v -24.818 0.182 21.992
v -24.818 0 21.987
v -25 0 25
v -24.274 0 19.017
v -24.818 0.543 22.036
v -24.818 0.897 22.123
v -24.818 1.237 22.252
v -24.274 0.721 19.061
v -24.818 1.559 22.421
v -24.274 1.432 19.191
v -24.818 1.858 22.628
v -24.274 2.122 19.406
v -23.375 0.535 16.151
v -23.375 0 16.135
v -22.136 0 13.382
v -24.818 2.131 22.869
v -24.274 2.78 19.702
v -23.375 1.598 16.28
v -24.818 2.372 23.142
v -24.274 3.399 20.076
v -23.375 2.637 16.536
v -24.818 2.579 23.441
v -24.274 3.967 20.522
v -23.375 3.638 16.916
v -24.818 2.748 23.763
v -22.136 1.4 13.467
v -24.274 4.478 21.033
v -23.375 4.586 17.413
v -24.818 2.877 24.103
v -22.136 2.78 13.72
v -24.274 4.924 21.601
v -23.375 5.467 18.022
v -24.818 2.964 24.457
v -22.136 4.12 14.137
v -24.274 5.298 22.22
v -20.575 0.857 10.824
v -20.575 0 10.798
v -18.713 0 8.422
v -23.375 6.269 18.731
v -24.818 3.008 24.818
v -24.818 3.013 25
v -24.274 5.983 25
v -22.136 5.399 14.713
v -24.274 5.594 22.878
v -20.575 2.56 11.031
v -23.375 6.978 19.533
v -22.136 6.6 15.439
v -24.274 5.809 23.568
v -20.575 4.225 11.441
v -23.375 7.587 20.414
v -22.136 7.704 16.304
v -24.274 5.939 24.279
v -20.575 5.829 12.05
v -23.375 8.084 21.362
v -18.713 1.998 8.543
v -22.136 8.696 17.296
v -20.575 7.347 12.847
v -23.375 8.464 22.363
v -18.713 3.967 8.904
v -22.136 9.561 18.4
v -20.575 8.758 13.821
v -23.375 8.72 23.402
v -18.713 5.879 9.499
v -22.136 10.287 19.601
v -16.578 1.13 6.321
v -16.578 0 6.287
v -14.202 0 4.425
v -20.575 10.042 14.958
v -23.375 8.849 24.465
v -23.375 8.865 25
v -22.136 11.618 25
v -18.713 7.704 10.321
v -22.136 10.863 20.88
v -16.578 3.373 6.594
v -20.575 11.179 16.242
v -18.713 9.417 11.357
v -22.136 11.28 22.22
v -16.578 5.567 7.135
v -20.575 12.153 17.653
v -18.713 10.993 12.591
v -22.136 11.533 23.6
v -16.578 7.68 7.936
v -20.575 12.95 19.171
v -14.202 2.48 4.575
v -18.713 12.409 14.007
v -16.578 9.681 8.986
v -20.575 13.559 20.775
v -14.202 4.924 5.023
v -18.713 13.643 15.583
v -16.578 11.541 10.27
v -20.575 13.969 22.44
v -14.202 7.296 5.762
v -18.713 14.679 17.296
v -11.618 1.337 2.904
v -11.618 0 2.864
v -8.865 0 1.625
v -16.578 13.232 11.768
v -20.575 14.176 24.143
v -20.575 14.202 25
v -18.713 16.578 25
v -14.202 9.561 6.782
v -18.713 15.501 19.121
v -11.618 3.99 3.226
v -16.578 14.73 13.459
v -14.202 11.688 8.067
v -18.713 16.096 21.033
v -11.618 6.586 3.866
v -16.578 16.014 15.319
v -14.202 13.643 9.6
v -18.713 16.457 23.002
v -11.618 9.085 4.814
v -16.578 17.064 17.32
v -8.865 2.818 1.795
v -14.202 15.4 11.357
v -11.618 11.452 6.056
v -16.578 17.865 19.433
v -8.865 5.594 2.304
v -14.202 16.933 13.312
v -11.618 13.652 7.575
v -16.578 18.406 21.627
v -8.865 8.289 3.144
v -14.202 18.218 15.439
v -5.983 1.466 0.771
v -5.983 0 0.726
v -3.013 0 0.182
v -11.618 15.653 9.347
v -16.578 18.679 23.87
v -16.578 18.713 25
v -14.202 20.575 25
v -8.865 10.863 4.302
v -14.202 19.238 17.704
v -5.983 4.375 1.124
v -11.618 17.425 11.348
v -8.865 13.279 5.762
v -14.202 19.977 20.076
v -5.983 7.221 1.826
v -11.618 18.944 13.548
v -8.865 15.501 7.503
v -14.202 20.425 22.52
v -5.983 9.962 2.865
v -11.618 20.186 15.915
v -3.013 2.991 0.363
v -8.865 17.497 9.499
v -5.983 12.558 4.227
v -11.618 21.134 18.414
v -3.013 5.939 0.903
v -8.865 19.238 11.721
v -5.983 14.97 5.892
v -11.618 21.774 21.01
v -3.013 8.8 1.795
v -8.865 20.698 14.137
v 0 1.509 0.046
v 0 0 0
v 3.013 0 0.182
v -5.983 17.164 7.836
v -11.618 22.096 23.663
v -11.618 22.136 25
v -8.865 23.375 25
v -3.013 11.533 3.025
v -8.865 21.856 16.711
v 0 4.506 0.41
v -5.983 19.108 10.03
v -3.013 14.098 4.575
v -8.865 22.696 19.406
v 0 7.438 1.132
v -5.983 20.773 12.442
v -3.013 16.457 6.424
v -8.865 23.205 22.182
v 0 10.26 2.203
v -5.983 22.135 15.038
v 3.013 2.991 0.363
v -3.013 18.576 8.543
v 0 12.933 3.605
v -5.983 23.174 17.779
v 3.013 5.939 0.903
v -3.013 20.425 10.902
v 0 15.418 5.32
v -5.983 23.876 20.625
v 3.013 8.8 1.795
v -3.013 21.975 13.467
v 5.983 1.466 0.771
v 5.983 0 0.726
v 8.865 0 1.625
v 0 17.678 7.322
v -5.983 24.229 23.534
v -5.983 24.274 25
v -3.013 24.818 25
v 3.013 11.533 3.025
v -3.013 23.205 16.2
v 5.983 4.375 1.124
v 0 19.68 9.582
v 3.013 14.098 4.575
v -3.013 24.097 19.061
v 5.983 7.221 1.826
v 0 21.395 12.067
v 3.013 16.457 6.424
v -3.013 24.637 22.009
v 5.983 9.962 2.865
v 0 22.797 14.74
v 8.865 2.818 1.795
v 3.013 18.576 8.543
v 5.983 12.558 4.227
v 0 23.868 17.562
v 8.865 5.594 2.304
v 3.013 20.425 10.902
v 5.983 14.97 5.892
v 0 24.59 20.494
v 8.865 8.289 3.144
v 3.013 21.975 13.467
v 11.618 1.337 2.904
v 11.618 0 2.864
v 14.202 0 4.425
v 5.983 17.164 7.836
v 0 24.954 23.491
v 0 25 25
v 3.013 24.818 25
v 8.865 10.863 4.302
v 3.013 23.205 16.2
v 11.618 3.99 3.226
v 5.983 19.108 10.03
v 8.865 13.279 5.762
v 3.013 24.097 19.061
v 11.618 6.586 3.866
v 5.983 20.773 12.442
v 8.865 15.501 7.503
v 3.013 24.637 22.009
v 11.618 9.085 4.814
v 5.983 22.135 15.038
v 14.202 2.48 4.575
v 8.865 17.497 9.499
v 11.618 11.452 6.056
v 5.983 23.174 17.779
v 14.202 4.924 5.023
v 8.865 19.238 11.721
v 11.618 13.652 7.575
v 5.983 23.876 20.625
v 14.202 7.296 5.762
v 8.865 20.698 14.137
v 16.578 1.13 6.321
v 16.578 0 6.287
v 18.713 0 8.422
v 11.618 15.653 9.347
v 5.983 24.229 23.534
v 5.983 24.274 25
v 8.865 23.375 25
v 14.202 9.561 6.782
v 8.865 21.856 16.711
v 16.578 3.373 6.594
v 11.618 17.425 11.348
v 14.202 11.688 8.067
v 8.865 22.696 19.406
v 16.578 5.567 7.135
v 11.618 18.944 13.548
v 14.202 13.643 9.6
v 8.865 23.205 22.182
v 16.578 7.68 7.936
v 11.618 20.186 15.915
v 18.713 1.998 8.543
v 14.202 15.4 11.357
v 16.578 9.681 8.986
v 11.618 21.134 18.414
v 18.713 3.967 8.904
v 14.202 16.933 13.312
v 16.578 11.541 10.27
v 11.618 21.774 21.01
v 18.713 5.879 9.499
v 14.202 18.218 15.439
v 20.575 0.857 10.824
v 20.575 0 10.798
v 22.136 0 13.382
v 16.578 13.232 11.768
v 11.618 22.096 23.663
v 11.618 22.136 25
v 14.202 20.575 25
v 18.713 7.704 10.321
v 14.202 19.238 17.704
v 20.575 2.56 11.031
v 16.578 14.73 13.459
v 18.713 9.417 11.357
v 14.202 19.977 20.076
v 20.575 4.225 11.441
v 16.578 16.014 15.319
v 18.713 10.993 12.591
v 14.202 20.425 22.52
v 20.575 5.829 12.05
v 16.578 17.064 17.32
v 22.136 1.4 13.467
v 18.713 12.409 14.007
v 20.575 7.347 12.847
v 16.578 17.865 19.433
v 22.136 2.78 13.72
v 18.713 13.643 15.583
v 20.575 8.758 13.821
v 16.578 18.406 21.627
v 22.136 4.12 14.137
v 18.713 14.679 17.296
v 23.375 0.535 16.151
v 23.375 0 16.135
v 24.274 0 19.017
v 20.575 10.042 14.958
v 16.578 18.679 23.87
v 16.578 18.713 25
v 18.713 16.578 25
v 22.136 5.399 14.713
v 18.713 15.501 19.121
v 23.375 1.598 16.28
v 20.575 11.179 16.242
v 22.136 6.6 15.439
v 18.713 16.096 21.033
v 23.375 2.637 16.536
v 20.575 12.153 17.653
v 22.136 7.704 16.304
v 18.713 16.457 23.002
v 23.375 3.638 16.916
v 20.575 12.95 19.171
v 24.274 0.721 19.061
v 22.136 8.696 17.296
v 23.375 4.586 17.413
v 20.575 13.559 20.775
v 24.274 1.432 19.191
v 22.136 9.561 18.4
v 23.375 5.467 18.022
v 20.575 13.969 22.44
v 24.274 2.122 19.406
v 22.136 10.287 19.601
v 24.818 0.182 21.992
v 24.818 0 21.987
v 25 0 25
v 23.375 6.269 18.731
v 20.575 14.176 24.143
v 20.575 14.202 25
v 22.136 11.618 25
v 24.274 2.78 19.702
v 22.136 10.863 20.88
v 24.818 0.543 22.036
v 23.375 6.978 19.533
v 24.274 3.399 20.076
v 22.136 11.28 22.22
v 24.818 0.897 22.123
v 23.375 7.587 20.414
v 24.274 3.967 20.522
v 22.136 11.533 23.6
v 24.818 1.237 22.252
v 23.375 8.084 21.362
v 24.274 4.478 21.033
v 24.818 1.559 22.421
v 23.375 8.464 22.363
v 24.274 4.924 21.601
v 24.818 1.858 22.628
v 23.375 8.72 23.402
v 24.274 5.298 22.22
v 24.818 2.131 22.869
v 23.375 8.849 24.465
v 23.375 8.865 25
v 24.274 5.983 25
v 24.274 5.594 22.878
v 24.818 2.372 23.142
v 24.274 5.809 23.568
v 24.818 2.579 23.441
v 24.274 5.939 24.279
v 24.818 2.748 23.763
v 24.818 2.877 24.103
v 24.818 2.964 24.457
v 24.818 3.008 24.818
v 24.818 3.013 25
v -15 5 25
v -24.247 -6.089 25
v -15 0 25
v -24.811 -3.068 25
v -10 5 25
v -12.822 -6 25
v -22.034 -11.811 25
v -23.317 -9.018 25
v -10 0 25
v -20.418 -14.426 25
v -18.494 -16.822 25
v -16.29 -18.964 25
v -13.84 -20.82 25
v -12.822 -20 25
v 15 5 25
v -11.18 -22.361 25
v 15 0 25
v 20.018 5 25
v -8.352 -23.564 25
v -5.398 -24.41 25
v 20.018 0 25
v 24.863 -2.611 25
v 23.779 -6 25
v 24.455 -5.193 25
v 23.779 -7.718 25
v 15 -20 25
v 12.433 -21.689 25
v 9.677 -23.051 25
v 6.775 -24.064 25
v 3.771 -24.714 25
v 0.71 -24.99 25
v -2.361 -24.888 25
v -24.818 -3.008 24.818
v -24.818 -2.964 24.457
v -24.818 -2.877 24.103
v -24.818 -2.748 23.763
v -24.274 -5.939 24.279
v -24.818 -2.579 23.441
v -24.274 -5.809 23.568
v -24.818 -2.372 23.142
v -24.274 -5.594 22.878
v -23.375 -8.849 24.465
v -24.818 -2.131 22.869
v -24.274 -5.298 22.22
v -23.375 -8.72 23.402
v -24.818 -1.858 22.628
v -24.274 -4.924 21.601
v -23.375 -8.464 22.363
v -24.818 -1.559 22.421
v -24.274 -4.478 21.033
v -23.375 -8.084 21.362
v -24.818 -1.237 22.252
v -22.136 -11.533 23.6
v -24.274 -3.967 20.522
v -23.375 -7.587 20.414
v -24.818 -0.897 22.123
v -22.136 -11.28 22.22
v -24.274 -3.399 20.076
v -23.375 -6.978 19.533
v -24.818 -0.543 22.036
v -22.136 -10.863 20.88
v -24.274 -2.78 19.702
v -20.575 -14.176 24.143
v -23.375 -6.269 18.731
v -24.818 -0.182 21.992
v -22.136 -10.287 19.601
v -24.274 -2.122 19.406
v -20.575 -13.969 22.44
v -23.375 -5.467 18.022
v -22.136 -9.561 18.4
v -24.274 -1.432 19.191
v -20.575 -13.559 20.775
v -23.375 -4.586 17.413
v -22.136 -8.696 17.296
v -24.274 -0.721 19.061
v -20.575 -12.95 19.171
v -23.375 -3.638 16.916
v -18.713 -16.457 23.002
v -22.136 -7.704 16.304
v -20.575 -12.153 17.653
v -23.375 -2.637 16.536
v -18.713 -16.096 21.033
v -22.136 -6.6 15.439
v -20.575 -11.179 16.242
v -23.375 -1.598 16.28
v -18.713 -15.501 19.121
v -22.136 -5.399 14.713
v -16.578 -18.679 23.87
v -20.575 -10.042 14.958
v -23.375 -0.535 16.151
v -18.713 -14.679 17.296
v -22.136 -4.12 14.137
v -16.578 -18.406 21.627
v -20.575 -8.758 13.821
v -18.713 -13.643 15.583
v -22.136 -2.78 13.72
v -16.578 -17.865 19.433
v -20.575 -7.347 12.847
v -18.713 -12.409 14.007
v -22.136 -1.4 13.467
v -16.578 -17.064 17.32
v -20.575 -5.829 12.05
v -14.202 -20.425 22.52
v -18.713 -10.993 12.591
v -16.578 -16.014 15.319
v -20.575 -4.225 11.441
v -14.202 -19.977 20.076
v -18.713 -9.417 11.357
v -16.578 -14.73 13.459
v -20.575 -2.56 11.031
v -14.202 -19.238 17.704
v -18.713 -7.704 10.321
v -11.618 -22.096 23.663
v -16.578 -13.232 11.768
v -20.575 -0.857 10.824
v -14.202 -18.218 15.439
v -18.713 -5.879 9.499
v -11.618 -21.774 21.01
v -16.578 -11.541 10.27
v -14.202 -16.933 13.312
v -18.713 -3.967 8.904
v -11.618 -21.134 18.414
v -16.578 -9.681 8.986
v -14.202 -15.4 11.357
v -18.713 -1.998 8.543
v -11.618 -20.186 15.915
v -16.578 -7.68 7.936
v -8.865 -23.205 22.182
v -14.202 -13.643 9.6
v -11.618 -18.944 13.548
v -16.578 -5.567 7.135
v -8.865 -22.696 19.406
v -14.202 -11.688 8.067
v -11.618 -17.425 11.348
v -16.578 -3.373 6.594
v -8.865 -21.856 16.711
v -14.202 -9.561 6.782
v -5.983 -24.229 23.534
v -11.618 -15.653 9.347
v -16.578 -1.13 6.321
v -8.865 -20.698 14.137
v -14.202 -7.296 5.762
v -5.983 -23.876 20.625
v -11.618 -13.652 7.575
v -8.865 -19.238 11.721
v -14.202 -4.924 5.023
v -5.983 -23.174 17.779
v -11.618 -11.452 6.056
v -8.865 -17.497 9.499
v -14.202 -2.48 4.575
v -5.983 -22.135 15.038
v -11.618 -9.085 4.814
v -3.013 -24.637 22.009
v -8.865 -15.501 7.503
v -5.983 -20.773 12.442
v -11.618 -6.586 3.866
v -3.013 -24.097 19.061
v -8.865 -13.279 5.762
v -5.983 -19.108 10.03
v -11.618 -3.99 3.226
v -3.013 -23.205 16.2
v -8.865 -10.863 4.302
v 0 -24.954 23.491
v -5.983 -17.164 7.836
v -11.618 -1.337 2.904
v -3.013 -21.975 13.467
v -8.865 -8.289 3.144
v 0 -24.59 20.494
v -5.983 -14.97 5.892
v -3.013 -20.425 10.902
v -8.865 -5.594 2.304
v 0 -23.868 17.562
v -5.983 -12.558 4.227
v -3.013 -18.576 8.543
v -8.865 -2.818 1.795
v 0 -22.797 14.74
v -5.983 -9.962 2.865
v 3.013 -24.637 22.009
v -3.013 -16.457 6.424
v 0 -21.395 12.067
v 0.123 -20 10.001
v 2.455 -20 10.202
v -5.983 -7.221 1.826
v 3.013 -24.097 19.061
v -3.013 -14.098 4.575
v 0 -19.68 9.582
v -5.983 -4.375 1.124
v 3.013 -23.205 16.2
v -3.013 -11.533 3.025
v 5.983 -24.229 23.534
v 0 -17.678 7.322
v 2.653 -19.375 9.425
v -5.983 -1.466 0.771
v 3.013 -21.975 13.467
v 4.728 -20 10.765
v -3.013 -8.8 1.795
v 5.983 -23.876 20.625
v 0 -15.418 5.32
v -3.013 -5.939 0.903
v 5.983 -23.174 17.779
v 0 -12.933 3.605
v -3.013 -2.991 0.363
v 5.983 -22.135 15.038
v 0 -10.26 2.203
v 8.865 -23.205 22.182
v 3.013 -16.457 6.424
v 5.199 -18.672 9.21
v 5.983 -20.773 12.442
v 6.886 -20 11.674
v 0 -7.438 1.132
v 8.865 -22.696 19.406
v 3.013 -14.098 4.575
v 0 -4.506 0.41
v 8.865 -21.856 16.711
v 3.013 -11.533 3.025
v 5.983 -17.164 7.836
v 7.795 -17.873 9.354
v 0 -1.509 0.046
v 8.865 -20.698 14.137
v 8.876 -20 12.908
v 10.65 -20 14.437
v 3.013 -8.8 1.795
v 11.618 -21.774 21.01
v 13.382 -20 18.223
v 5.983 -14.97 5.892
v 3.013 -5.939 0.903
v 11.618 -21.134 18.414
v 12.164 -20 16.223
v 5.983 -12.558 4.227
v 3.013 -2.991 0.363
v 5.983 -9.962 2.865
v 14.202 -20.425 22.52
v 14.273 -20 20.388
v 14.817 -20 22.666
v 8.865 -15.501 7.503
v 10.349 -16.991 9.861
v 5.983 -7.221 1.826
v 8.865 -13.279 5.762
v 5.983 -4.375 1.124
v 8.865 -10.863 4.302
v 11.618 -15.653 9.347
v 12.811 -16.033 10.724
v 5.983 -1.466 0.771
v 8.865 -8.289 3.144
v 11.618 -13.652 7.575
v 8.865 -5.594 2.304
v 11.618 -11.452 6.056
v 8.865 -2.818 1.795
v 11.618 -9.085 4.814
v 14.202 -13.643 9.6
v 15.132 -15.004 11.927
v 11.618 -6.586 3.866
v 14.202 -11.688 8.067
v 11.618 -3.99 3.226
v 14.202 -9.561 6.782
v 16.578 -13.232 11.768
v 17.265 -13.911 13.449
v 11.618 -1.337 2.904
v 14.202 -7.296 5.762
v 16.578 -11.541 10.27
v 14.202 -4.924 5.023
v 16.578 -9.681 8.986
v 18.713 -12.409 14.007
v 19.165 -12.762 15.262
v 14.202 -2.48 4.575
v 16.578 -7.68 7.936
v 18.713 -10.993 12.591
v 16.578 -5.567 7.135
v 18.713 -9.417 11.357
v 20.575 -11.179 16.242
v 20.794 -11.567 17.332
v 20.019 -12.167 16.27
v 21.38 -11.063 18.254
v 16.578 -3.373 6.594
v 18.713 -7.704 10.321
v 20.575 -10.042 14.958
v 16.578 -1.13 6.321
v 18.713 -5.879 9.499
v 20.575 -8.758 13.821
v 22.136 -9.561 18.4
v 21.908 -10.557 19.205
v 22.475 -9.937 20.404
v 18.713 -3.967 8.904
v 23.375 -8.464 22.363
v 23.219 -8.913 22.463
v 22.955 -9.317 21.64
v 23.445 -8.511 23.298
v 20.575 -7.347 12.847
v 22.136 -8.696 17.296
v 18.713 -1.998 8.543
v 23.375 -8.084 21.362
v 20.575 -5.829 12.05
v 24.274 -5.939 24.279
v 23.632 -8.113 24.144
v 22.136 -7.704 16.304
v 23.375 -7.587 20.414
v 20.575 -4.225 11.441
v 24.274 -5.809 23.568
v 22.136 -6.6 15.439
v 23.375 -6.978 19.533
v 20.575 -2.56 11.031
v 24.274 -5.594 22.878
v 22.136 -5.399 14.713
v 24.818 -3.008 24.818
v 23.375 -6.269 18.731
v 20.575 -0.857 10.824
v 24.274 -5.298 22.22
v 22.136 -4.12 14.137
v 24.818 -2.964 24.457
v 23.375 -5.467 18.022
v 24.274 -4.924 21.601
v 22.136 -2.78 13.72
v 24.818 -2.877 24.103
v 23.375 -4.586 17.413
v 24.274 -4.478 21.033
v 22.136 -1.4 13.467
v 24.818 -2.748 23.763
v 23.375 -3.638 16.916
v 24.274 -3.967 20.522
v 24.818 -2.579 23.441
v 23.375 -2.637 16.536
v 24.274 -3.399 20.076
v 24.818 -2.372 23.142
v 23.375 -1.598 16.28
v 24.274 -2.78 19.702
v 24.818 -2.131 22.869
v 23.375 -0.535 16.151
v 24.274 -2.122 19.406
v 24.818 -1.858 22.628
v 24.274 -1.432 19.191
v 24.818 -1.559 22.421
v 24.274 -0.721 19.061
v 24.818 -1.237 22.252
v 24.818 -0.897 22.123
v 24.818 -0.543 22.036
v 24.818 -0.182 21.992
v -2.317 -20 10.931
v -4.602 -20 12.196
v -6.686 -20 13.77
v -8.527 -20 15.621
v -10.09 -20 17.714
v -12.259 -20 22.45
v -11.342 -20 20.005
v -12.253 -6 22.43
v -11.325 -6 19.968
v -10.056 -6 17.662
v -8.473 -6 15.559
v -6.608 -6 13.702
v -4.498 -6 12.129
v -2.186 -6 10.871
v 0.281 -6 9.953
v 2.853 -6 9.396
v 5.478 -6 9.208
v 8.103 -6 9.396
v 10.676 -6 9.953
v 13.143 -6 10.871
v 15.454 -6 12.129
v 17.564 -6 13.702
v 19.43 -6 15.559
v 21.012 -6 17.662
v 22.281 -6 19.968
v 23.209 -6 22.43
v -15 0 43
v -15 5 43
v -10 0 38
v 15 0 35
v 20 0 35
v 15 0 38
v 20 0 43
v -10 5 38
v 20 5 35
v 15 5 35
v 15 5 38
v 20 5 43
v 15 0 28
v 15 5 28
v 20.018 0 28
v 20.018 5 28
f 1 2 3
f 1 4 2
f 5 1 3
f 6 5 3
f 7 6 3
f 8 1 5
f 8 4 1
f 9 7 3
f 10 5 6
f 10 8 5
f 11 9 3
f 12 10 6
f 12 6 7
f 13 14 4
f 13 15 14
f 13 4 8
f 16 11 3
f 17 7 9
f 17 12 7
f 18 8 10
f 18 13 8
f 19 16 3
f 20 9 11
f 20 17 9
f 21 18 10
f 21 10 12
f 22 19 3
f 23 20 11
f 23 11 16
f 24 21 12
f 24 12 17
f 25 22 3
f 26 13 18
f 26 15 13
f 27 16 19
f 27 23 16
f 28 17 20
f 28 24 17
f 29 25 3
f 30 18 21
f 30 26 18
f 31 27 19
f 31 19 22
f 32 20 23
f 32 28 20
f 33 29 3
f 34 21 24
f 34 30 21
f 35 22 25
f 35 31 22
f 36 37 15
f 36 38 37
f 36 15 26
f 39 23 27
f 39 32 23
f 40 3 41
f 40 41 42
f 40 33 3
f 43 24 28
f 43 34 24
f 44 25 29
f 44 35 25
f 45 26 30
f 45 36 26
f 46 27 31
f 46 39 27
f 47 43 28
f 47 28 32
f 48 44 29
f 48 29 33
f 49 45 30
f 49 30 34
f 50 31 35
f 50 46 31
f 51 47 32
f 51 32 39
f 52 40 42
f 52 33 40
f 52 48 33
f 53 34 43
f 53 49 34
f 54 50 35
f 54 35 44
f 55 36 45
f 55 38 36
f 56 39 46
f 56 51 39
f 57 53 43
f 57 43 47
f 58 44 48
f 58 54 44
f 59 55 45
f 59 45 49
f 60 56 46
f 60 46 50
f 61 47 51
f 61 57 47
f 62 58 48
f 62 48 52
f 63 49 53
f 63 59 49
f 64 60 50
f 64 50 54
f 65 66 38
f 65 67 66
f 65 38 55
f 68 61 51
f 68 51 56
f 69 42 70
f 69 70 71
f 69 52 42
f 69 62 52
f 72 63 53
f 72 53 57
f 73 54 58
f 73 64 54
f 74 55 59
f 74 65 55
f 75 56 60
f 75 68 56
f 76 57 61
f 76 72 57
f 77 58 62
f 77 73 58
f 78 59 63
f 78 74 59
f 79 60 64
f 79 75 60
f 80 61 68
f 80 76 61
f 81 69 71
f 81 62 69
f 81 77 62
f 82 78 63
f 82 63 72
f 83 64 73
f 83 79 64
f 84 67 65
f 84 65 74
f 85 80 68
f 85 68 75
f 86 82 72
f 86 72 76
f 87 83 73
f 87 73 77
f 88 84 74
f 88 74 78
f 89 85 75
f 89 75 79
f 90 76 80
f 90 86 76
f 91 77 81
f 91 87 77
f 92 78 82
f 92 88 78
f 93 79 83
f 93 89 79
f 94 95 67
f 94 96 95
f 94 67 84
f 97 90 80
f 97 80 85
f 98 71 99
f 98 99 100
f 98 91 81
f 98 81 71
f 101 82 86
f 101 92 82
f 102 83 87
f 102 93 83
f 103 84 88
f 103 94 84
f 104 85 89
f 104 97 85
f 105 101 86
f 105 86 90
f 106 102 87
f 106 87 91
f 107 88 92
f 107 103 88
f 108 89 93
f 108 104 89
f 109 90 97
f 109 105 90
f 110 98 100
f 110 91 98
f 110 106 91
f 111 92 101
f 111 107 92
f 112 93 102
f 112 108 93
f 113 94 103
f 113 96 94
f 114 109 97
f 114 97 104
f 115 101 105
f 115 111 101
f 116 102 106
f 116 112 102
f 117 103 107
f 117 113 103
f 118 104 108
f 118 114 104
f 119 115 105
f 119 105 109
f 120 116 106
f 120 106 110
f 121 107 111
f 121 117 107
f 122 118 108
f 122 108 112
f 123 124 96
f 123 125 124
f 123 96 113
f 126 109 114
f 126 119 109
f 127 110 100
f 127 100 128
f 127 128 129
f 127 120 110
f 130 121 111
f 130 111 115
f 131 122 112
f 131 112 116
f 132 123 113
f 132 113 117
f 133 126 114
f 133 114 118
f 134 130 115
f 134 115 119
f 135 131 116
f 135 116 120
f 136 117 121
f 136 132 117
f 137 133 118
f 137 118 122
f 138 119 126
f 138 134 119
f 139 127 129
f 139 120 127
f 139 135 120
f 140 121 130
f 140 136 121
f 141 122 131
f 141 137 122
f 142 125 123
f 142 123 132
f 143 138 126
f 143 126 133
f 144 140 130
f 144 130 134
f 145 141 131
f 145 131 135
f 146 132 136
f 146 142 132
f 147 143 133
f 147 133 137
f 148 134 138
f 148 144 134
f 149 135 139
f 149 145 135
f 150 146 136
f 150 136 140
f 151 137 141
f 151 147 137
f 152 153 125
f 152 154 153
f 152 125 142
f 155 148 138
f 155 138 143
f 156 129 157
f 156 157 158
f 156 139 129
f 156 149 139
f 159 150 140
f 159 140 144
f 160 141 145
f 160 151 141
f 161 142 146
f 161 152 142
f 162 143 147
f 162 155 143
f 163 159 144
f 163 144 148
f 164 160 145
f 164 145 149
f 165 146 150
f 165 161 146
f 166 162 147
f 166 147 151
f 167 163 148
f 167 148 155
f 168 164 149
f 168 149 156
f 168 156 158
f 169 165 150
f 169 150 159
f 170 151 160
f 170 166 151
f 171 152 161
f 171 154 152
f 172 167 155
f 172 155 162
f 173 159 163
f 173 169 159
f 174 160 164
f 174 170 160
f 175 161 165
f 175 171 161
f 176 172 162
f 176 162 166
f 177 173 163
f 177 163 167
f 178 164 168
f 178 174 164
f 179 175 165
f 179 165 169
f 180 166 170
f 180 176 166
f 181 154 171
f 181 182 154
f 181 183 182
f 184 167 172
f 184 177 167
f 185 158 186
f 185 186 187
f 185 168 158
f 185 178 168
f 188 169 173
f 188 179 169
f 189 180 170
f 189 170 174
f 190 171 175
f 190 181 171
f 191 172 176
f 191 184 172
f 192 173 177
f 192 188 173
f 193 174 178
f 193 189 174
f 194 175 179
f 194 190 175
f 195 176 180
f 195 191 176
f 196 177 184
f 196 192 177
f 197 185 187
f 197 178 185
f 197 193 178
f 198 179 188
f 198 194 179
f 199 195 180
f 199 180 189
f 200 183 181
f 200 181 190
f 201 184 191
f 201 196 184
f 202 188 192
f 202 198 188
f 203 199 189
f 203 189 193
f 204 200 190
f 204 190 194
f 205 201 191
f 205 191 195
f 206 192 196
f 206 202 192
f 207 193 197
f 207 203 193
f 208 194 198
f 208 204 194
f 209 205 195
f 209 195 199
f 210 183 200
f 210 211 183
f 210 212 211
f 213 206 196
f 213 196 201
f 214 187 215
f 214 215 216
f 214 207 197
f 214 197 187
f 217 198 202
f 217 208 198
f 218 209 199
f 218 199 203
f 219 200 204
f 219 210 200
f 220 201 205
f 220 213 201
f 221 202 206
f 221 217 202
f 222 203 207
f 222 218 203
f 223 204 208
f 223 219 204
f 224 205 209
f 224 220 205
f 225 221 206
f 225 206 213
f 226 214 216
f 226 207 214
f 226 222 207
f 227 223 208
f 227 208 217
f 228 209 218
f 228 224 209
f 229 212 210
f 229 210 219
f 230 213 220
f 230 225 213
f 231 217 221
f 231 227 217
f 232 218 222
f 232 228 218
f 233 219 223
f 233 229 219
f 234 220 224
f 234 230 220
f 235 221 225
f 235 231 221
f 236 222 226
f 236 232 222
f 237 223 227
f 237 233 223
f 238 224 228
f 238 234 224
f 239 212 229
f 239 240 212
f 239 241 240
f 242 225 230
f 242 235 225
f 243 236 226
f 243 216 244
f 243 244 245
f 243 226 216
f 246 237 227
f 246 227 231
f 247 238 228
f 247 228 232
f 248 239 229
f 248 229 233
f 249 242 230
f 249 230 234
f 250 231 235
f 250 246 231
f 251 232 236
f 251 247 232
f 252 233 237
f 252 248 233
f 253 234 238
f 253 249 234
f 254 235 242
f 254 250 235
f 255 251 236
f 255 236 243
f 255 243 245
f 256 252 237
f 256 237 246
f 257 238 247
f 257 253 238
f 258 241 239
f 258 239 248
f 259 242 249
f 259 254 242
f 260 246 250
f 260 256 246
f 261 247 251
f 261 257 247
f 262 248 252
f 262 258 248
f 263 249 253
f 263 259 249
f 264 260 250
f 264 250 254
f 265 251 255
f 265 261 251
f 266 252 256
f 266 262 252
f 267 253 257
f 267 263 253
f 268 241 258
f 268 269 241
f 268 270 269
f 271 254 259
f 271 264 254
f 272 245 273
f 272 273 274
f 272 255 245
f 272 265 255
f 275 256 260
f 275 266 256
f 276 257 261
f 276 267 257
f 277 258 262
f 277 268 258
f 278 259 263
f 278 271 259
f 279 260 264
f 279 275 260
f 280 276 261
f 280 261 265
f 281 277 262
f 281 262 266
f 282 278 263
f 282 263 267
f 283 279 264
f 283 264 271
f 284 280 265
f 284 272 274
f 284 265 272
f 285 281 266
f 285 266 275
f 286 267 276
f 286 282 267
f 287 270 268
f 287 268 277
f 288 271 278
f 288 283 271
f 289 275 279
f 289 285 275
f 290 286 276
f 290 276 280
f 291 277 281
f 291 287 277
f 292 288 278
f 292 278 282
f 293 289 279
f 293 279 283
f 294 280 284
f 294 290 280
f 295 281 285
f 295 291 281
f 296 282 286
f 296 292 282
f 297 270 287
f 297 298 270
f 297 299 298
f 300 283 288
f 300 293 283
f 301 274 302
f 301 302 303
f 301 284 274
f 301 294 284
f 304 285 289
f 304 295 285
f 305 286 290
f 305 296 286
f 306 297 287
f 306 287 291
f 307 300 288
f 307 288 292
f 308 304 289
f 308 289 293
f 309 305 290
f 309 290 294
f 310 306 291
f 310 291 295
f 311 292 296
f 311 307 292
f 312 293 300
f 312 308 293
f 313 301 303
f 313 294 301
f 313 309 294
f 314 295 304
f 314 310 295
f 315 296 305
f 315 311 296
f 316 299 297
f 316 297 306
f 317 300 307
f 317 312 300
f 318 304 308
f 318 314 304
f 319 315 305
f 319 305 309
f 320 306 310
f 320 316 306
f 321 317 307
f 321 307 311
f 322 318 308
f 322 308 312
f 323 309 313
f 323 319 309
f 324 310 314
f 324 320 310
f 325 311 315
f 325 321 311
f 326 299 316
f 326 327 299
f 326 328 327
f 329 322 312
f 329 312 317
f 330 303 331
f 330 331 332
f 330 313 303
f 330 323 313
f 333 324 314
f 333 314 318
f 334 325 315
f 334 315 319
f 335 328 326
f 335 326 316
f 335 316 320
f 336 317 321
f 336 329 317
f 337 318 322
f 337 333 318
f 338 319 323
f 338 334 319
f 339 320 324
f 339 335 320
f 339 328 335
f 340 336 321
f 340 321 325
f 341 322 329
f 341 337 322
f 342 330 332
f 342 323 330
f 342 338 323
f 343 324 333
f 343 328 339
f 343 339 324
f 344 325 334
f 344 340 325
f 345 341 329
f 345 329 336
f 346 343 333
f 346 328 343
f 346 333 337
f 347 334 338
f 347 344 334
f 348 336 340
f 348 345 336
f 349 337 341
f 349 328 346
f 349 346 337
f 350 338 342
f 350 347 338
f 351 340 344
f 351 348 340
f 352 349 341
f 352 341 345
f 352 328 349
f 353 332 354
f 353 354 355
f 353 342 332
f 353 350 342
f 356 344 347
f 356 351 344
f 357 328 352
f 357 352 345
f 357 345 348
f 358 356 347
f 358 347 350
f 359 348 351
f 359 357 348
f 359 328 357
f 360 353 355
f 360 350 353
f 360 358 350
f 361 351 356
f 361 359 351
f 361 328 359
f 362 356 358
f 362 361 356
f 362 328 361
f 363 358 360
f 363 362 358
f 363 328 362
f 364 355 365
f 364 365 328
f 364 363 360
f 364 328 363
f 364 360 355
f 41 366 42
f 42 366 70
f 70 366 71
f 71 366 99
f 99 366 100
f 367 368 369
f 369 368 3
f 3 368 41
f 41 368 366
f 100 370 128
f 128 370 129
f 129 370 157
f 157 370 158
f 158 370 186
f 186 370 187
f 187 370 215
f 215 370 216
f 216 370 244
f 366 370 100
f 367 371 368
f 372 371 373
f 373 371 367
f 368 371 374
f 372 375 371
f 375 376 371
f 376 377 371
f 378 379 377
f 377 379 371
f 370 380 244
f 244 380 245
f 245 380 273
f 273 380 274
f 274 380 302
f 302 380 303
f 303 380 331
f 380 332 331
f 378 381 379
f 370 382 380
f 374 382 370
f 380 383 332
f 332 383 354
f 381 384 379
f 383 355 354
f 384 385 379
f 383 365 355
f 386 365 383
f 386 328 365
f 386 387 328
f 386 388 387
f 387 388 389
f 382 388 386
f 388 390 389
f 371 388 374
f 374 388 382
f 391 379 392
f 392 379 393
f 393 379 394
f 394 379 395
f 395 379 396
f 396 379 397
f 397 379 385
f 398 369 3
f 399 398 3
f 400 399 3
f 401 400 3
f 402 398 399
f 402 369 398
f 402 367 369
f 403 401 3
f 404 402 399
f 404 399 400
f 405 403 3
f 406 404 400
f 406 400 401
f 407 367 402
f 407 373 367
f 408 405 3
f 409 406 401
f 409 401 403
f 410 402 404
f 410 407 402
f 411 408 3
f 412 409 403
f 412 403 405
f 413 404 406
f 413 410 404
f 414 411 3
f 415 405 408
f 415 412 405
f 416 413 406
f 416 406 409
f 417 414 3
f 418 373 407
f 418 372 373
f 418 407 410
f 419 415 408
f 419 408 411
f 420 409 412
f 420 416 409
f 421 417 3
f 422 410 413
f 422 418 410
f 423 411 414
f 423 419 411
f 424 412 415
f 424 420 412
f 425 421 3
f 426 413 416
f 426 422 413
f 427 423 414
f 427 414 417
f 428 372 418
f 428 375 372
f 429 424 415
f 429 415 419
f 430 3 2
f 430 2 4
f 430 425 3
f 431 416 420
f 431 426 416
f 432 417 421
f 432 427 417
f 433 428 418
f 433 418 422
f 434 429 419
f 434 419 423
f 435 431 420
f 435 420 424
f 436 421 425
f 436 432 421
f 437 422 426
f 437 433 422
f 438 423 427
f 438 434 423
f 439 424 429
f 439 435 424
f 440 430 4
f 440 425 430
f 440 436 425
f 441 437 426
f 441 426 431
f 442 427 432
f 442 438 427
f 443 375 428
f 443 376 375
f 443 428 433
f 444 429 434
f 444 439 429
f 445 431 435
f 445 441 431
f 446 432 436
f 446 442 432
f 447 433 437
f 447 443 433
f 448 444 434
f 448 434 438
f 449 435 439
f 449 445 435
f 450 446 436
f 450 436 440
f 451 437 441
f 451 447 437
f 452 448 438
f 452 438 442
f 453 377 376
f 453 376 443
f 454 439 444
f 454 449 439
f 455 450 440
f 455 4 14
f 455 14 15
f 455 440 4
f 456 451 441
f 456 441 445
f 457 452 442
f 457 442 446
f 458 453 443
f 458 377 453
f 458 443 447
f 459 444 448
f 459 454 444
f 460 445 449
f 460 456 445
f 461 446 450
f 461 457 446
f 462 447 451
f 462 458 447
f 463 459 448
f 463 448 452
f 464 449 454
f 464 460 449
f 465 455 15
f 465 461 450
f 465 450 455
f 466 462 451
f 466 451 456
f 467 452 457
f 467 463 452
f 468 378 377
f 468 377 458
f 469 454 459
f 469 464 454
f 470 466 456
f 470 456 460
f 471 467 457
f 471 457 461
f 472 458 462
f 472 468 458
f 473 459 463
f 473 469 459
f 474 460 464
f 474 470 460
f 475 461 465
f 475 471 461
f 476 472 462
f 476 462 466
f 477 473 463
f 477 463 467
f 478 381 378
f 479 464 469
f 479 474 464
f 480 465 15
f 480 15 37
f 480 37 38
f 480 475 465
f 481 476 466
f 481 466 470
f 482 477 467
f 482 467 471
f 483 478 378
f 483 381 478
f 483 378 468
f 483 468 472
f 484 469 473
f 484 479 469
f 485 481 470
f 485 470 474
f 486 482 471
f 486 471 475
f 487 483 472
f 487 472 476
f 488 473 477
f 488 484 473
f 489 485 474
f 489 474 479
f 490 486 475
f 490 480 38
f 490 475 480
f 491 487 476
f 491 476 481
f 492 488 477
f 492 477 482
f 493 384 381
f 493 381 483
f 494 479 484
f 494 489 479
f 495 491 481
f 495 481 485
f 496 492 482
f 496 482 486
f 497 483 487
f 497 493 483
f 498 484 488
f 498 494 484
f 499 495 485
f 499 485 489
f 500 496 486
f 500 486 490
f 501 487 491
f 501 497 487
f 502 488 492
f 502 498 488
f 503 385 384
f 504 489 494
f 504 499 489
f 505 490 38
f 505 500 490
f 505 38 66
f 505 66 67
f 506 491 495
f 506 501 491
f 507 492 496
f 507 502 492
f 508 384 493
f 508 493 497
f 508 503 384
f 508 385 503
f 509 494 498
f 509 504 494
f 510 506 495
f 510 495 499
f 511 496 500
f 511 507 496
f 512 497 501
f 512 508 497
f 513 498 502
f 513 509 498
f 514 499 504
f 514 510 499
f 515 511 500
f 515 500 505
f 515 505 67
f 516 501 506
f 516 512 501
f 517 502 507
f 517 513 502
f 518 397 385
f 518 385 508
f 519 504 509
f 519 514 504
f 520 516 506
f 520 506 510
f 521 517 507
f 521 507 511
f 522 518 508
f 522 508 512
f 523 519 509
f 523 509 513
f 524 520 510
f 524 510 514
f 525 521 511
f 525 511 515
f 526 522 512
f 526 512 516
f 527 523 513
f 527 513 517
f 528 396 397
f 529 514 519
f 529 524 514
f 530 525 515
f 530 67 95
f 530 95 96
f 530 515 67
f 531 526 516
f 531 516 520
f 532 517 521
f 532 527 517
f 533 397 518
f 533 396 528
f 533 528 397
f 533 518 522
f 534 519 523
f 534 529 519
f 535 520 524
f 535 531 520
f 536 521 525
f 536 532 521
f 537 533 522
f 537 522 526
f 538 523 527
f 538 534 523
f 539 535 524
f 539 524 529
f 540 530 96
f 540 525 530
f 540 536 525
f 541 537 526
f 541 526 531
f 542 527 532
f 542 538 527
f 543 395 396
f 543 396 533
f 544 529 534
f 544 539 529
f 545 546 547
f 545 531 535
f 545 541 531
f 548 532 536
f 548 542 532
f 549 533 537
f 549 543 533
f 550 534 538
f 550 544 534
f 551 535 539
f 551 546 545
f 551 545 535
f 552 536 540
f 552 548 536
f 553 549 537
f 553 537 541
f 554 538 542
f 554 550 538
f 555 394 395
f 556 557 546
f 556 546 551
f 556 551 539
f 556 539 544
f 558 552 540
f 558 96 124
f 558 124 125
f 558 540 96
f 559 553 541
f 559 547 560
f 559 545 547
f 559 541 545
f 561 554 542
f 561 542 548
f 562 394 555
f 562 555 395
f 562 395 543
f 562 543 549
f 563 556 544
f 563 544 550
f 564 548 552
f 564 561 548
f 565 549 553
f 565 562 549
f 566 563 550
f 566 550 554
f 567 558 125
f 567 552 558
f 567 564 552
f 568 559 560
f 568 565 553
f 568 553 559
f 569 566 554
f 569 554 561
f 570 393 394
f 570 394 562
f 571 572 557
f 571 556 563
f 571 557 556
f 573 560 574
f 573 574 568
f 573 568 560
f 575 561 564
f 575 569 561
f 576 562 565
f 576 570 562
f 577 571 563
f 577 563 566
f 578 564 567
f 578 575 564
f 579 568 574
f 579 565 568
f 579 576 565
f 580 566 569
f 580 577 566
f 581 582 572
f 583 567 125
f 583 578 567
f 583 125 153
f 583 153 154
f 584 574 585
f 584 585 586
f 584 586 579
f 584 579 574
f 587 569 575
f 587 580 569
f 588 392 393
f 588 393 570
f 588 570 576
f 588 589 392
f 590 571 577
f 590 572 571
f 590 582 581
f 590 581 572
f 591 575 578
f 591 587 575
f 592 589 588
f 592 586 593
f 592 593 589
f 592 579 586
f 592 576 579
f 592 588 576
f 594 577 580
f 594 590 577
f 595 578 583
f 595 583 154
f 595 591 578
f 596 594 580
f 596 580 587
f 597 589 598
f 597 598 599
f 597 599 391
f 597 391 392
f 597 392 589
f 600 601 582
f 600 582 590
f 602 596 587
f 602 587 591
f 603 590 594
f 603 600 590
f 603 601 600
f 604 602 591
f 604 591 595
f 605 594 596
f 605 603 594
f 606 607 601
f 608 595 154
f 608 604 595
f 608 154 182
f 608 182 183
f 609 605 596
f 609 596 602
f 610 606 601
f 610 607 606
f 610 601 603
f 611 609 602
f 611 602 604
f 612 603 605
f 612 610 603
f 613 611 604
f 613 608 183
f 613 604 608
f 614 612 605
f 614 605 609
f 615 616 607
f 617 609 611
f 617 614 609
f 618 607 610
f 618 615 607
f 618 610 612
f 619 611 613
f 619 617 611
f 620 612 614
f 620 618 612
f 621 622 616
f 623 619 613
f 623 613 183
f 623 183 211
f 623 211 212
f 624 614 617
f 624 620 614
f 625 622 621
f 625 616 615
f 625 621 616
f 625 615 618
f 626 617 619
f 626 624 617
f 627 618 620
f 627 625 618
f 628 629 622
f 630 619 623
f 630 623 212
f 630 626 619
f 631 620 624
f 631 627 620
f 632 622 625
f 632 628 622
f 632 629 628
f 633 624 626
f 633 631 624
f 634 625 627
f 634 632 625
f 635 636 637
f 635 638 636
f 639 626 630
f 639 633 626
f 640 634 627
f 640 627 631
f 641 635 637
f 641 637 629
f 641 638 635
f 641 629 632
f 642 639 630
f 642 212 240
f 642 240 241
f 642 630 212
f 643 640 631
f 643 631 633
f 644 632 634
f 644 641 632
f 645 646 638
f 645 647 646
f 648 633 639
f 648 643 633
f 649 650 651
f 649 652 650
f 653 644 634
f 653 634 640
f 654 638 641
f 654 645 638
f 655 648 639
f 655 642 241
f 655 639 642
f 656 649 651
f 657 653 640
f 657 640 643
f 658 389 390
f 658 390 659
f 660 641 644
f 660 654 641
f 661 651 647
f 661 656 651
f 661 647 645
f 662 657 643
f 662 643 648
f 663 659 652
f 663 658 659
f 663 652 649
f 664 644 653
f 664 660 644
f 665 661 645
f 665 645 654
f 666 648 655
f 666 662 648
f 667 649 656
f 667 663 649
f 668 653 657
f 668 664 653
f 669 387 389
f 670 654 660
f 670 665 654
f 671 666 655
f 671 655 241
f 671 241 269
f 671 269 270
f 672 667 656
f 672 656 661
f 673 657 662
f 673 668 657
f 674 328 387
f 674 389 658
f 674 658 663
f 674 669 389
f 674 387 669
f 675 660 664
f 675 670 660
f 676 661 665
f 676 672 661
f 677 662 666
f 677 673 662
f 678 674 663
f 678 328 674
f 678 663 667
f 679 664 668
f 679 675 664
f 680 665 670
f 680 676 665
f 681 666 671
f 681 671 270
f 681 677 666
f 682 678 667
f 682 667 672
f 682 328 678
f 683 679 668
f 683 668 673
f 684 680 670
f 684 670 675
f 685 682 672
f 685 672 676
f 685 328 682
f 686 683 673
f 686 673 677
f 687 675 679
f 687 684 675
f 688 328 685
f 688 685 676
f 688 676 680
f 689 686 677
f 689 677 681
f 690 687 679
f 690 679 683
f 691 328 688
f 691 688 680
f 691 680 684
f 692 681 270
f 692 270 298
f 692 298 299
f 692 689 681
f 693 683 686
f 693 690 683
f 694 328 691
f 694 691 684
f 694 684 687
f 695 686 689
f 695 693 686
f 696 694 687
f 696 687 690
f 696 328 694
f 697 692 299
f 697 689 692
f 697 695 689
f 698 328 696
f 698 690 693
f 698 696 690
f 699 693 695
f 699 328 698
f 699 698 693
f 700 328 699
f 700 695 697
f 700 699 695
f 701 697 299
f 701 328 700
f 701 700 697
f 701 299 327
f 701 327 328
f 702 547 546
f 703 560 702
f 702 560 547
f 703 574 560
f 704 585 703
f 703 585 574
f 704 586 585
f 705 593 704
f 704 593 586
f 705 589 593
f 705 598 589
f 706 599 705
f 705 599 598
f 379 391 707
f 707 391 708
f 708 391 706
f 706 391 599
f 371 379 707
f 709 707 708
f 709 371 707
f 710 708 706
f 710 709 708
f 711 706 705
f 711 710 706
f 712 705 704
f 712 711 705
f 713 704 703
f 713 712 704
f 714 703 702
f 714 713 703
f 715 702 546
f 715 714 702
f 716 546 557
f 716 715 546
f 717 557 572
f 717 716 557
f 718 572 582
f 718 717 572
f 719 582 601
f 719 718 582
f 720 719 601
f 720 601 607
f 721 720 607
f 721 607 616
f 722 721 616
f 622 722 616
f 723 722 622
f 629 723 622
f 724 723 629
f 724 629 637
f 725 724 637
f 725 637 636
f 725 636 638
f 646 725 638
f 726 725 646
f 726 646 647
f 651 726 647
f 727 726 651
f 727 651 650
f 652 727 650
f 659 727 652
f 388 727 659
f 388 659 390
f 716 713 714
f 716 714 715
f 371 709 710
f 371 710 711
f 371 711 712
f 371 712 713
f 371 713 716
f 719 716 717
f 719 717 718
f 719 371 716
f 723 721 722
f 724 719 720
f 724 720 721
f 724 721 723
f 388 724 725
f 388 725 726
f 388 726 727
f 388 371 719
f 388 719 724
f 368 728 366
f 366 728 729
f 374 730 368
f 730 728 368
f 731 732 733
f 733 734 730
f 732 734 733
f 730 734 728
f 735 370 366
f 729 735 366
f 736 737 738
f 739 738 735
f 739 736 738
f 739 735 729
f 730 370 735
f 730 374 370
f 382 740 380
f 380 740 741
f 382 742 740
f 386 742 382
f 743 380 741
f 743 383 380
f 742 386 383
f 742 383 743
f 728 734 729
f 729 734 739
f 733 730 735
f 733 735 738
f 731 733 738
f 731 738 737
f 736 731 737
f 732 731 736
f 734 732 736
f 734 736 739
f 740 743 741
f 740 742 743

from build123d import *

# Parameters (mm, degrees)
SKETCH_R                   = 18.5
EXTRUDE001_DEPTH           = 14
EXTRUDE001_PLACEMENT_ANGLE = 90
SKETCH002_W                = 5.018169
SKETCH002_H                = 3
EXTRUDE002_DEPTH           = 5
BOX_W                      = 210
BOX_H                      = 320
BOX_DEPTH                  = 320
CUT001_PLACEMENT_ANGLE     = 90
EXTRUDE_DEPTH              = 5


with BuildPart() as hueco:
    # Sketch → Extrude001 (new body)
    with BuildSketch(Plane.XY):
        with Locations((53.478226, 36.958317)):
            Circle(SKETCH_R)
    extrude(amount=EXTRUDE001_DEPTH)


with BuildPart() as hueco_1:
    # Extrude001 placement: moved
    add(hueco.part.moved(Location((-48, -6, -9.25))).rotate(Axis((-48, -6, -9.25), (1, 0, 0)), EXTRUDE001_PLACEMENT_ANGLE))


with BuildPart() as extrude002:
    # Sketch002 → Extrude002 (new body)
    with BuildSketch(Plane.XZ):
        with Locations((27.509085, -11.5)):
            Rectangle(SKETCH002_W, SKETCH002_H)
    extrude(amount=-EXTRUDE002_DEPTH)


with BuildPart() as cubo:
    # Box → Box (new body)
    with BuildSketch(Plane(origin=(0, -151, -150), x_dir=(1, 0, 0), z_dir=(0, 0, 1))):
        with Locations((105, 160)):
            Rectangle(BOX_W, BOX_H)
    extrude(amount=BOX_DEPTH)


with BuildPart() as cut:
    # Sphere → Sphere (revolve)
    with BuildSketch(Plane.XZ):
        with BuildLine():
            ThreePointArc((0, -150), (150, 0), (0, 150))
            Line((0, 150), (0, -150))
        make_face()
    revolve(axis=Axis((0, 0, 0), (0, 0, 1)))

    # Cut: cut Cubo
    add(cubo.part, mode=Mode.SUBTRACT)


with BuildPart() as cut001:
    # Sphere001 → Sphere001 (revolve)
    with BuildSketch(Plane.XZ):
        with BuildLine():
            ThreePointArc((0, -25), (25, 0), (0, 25))
            Line((0, 25), (0, -25))
        make_face()
    revolve(axis=Axis((0, 0, 0), (0, 0, 1)))

    # Cut001: cut Cut
    add(cut.part, mode=Mode.SUBTRACT)


with BuildPart() as cut001_1:
    # Cut001 placement: moved
    add(cut001.part.moved(Location((10, 0, -13))).rotate(Axis((10, 0, -13), (0, 1, 0)), CUT001_PLACEMENT_ANGLE))


with BuildPart() as base:
    # Sketch001 → Extrude (new body)
    with BuildSketch(Plane.XZ):
        Polygon((0, 0), (25, 0), (25, -3), (30, -3), (30, 5), (-5, 5), (-5, -13), (0, -13), align=None)
    extrude(amount=-EXTRUDE_DEPTH)

    # Fusion: union Cut001
    add(cut001_1.part)

    # Fusion001: union Extrude002
    add(extrude002.part)


with BuildPart() as base_1:
    # Fusion001 placement: moved
    add(base.part.moved(Location((-10, 0, 38))))

    # Cut002: cut hueco
    add(hueco_1.part, mode=Mode.SUBTRACT)


solid = base_1.part
